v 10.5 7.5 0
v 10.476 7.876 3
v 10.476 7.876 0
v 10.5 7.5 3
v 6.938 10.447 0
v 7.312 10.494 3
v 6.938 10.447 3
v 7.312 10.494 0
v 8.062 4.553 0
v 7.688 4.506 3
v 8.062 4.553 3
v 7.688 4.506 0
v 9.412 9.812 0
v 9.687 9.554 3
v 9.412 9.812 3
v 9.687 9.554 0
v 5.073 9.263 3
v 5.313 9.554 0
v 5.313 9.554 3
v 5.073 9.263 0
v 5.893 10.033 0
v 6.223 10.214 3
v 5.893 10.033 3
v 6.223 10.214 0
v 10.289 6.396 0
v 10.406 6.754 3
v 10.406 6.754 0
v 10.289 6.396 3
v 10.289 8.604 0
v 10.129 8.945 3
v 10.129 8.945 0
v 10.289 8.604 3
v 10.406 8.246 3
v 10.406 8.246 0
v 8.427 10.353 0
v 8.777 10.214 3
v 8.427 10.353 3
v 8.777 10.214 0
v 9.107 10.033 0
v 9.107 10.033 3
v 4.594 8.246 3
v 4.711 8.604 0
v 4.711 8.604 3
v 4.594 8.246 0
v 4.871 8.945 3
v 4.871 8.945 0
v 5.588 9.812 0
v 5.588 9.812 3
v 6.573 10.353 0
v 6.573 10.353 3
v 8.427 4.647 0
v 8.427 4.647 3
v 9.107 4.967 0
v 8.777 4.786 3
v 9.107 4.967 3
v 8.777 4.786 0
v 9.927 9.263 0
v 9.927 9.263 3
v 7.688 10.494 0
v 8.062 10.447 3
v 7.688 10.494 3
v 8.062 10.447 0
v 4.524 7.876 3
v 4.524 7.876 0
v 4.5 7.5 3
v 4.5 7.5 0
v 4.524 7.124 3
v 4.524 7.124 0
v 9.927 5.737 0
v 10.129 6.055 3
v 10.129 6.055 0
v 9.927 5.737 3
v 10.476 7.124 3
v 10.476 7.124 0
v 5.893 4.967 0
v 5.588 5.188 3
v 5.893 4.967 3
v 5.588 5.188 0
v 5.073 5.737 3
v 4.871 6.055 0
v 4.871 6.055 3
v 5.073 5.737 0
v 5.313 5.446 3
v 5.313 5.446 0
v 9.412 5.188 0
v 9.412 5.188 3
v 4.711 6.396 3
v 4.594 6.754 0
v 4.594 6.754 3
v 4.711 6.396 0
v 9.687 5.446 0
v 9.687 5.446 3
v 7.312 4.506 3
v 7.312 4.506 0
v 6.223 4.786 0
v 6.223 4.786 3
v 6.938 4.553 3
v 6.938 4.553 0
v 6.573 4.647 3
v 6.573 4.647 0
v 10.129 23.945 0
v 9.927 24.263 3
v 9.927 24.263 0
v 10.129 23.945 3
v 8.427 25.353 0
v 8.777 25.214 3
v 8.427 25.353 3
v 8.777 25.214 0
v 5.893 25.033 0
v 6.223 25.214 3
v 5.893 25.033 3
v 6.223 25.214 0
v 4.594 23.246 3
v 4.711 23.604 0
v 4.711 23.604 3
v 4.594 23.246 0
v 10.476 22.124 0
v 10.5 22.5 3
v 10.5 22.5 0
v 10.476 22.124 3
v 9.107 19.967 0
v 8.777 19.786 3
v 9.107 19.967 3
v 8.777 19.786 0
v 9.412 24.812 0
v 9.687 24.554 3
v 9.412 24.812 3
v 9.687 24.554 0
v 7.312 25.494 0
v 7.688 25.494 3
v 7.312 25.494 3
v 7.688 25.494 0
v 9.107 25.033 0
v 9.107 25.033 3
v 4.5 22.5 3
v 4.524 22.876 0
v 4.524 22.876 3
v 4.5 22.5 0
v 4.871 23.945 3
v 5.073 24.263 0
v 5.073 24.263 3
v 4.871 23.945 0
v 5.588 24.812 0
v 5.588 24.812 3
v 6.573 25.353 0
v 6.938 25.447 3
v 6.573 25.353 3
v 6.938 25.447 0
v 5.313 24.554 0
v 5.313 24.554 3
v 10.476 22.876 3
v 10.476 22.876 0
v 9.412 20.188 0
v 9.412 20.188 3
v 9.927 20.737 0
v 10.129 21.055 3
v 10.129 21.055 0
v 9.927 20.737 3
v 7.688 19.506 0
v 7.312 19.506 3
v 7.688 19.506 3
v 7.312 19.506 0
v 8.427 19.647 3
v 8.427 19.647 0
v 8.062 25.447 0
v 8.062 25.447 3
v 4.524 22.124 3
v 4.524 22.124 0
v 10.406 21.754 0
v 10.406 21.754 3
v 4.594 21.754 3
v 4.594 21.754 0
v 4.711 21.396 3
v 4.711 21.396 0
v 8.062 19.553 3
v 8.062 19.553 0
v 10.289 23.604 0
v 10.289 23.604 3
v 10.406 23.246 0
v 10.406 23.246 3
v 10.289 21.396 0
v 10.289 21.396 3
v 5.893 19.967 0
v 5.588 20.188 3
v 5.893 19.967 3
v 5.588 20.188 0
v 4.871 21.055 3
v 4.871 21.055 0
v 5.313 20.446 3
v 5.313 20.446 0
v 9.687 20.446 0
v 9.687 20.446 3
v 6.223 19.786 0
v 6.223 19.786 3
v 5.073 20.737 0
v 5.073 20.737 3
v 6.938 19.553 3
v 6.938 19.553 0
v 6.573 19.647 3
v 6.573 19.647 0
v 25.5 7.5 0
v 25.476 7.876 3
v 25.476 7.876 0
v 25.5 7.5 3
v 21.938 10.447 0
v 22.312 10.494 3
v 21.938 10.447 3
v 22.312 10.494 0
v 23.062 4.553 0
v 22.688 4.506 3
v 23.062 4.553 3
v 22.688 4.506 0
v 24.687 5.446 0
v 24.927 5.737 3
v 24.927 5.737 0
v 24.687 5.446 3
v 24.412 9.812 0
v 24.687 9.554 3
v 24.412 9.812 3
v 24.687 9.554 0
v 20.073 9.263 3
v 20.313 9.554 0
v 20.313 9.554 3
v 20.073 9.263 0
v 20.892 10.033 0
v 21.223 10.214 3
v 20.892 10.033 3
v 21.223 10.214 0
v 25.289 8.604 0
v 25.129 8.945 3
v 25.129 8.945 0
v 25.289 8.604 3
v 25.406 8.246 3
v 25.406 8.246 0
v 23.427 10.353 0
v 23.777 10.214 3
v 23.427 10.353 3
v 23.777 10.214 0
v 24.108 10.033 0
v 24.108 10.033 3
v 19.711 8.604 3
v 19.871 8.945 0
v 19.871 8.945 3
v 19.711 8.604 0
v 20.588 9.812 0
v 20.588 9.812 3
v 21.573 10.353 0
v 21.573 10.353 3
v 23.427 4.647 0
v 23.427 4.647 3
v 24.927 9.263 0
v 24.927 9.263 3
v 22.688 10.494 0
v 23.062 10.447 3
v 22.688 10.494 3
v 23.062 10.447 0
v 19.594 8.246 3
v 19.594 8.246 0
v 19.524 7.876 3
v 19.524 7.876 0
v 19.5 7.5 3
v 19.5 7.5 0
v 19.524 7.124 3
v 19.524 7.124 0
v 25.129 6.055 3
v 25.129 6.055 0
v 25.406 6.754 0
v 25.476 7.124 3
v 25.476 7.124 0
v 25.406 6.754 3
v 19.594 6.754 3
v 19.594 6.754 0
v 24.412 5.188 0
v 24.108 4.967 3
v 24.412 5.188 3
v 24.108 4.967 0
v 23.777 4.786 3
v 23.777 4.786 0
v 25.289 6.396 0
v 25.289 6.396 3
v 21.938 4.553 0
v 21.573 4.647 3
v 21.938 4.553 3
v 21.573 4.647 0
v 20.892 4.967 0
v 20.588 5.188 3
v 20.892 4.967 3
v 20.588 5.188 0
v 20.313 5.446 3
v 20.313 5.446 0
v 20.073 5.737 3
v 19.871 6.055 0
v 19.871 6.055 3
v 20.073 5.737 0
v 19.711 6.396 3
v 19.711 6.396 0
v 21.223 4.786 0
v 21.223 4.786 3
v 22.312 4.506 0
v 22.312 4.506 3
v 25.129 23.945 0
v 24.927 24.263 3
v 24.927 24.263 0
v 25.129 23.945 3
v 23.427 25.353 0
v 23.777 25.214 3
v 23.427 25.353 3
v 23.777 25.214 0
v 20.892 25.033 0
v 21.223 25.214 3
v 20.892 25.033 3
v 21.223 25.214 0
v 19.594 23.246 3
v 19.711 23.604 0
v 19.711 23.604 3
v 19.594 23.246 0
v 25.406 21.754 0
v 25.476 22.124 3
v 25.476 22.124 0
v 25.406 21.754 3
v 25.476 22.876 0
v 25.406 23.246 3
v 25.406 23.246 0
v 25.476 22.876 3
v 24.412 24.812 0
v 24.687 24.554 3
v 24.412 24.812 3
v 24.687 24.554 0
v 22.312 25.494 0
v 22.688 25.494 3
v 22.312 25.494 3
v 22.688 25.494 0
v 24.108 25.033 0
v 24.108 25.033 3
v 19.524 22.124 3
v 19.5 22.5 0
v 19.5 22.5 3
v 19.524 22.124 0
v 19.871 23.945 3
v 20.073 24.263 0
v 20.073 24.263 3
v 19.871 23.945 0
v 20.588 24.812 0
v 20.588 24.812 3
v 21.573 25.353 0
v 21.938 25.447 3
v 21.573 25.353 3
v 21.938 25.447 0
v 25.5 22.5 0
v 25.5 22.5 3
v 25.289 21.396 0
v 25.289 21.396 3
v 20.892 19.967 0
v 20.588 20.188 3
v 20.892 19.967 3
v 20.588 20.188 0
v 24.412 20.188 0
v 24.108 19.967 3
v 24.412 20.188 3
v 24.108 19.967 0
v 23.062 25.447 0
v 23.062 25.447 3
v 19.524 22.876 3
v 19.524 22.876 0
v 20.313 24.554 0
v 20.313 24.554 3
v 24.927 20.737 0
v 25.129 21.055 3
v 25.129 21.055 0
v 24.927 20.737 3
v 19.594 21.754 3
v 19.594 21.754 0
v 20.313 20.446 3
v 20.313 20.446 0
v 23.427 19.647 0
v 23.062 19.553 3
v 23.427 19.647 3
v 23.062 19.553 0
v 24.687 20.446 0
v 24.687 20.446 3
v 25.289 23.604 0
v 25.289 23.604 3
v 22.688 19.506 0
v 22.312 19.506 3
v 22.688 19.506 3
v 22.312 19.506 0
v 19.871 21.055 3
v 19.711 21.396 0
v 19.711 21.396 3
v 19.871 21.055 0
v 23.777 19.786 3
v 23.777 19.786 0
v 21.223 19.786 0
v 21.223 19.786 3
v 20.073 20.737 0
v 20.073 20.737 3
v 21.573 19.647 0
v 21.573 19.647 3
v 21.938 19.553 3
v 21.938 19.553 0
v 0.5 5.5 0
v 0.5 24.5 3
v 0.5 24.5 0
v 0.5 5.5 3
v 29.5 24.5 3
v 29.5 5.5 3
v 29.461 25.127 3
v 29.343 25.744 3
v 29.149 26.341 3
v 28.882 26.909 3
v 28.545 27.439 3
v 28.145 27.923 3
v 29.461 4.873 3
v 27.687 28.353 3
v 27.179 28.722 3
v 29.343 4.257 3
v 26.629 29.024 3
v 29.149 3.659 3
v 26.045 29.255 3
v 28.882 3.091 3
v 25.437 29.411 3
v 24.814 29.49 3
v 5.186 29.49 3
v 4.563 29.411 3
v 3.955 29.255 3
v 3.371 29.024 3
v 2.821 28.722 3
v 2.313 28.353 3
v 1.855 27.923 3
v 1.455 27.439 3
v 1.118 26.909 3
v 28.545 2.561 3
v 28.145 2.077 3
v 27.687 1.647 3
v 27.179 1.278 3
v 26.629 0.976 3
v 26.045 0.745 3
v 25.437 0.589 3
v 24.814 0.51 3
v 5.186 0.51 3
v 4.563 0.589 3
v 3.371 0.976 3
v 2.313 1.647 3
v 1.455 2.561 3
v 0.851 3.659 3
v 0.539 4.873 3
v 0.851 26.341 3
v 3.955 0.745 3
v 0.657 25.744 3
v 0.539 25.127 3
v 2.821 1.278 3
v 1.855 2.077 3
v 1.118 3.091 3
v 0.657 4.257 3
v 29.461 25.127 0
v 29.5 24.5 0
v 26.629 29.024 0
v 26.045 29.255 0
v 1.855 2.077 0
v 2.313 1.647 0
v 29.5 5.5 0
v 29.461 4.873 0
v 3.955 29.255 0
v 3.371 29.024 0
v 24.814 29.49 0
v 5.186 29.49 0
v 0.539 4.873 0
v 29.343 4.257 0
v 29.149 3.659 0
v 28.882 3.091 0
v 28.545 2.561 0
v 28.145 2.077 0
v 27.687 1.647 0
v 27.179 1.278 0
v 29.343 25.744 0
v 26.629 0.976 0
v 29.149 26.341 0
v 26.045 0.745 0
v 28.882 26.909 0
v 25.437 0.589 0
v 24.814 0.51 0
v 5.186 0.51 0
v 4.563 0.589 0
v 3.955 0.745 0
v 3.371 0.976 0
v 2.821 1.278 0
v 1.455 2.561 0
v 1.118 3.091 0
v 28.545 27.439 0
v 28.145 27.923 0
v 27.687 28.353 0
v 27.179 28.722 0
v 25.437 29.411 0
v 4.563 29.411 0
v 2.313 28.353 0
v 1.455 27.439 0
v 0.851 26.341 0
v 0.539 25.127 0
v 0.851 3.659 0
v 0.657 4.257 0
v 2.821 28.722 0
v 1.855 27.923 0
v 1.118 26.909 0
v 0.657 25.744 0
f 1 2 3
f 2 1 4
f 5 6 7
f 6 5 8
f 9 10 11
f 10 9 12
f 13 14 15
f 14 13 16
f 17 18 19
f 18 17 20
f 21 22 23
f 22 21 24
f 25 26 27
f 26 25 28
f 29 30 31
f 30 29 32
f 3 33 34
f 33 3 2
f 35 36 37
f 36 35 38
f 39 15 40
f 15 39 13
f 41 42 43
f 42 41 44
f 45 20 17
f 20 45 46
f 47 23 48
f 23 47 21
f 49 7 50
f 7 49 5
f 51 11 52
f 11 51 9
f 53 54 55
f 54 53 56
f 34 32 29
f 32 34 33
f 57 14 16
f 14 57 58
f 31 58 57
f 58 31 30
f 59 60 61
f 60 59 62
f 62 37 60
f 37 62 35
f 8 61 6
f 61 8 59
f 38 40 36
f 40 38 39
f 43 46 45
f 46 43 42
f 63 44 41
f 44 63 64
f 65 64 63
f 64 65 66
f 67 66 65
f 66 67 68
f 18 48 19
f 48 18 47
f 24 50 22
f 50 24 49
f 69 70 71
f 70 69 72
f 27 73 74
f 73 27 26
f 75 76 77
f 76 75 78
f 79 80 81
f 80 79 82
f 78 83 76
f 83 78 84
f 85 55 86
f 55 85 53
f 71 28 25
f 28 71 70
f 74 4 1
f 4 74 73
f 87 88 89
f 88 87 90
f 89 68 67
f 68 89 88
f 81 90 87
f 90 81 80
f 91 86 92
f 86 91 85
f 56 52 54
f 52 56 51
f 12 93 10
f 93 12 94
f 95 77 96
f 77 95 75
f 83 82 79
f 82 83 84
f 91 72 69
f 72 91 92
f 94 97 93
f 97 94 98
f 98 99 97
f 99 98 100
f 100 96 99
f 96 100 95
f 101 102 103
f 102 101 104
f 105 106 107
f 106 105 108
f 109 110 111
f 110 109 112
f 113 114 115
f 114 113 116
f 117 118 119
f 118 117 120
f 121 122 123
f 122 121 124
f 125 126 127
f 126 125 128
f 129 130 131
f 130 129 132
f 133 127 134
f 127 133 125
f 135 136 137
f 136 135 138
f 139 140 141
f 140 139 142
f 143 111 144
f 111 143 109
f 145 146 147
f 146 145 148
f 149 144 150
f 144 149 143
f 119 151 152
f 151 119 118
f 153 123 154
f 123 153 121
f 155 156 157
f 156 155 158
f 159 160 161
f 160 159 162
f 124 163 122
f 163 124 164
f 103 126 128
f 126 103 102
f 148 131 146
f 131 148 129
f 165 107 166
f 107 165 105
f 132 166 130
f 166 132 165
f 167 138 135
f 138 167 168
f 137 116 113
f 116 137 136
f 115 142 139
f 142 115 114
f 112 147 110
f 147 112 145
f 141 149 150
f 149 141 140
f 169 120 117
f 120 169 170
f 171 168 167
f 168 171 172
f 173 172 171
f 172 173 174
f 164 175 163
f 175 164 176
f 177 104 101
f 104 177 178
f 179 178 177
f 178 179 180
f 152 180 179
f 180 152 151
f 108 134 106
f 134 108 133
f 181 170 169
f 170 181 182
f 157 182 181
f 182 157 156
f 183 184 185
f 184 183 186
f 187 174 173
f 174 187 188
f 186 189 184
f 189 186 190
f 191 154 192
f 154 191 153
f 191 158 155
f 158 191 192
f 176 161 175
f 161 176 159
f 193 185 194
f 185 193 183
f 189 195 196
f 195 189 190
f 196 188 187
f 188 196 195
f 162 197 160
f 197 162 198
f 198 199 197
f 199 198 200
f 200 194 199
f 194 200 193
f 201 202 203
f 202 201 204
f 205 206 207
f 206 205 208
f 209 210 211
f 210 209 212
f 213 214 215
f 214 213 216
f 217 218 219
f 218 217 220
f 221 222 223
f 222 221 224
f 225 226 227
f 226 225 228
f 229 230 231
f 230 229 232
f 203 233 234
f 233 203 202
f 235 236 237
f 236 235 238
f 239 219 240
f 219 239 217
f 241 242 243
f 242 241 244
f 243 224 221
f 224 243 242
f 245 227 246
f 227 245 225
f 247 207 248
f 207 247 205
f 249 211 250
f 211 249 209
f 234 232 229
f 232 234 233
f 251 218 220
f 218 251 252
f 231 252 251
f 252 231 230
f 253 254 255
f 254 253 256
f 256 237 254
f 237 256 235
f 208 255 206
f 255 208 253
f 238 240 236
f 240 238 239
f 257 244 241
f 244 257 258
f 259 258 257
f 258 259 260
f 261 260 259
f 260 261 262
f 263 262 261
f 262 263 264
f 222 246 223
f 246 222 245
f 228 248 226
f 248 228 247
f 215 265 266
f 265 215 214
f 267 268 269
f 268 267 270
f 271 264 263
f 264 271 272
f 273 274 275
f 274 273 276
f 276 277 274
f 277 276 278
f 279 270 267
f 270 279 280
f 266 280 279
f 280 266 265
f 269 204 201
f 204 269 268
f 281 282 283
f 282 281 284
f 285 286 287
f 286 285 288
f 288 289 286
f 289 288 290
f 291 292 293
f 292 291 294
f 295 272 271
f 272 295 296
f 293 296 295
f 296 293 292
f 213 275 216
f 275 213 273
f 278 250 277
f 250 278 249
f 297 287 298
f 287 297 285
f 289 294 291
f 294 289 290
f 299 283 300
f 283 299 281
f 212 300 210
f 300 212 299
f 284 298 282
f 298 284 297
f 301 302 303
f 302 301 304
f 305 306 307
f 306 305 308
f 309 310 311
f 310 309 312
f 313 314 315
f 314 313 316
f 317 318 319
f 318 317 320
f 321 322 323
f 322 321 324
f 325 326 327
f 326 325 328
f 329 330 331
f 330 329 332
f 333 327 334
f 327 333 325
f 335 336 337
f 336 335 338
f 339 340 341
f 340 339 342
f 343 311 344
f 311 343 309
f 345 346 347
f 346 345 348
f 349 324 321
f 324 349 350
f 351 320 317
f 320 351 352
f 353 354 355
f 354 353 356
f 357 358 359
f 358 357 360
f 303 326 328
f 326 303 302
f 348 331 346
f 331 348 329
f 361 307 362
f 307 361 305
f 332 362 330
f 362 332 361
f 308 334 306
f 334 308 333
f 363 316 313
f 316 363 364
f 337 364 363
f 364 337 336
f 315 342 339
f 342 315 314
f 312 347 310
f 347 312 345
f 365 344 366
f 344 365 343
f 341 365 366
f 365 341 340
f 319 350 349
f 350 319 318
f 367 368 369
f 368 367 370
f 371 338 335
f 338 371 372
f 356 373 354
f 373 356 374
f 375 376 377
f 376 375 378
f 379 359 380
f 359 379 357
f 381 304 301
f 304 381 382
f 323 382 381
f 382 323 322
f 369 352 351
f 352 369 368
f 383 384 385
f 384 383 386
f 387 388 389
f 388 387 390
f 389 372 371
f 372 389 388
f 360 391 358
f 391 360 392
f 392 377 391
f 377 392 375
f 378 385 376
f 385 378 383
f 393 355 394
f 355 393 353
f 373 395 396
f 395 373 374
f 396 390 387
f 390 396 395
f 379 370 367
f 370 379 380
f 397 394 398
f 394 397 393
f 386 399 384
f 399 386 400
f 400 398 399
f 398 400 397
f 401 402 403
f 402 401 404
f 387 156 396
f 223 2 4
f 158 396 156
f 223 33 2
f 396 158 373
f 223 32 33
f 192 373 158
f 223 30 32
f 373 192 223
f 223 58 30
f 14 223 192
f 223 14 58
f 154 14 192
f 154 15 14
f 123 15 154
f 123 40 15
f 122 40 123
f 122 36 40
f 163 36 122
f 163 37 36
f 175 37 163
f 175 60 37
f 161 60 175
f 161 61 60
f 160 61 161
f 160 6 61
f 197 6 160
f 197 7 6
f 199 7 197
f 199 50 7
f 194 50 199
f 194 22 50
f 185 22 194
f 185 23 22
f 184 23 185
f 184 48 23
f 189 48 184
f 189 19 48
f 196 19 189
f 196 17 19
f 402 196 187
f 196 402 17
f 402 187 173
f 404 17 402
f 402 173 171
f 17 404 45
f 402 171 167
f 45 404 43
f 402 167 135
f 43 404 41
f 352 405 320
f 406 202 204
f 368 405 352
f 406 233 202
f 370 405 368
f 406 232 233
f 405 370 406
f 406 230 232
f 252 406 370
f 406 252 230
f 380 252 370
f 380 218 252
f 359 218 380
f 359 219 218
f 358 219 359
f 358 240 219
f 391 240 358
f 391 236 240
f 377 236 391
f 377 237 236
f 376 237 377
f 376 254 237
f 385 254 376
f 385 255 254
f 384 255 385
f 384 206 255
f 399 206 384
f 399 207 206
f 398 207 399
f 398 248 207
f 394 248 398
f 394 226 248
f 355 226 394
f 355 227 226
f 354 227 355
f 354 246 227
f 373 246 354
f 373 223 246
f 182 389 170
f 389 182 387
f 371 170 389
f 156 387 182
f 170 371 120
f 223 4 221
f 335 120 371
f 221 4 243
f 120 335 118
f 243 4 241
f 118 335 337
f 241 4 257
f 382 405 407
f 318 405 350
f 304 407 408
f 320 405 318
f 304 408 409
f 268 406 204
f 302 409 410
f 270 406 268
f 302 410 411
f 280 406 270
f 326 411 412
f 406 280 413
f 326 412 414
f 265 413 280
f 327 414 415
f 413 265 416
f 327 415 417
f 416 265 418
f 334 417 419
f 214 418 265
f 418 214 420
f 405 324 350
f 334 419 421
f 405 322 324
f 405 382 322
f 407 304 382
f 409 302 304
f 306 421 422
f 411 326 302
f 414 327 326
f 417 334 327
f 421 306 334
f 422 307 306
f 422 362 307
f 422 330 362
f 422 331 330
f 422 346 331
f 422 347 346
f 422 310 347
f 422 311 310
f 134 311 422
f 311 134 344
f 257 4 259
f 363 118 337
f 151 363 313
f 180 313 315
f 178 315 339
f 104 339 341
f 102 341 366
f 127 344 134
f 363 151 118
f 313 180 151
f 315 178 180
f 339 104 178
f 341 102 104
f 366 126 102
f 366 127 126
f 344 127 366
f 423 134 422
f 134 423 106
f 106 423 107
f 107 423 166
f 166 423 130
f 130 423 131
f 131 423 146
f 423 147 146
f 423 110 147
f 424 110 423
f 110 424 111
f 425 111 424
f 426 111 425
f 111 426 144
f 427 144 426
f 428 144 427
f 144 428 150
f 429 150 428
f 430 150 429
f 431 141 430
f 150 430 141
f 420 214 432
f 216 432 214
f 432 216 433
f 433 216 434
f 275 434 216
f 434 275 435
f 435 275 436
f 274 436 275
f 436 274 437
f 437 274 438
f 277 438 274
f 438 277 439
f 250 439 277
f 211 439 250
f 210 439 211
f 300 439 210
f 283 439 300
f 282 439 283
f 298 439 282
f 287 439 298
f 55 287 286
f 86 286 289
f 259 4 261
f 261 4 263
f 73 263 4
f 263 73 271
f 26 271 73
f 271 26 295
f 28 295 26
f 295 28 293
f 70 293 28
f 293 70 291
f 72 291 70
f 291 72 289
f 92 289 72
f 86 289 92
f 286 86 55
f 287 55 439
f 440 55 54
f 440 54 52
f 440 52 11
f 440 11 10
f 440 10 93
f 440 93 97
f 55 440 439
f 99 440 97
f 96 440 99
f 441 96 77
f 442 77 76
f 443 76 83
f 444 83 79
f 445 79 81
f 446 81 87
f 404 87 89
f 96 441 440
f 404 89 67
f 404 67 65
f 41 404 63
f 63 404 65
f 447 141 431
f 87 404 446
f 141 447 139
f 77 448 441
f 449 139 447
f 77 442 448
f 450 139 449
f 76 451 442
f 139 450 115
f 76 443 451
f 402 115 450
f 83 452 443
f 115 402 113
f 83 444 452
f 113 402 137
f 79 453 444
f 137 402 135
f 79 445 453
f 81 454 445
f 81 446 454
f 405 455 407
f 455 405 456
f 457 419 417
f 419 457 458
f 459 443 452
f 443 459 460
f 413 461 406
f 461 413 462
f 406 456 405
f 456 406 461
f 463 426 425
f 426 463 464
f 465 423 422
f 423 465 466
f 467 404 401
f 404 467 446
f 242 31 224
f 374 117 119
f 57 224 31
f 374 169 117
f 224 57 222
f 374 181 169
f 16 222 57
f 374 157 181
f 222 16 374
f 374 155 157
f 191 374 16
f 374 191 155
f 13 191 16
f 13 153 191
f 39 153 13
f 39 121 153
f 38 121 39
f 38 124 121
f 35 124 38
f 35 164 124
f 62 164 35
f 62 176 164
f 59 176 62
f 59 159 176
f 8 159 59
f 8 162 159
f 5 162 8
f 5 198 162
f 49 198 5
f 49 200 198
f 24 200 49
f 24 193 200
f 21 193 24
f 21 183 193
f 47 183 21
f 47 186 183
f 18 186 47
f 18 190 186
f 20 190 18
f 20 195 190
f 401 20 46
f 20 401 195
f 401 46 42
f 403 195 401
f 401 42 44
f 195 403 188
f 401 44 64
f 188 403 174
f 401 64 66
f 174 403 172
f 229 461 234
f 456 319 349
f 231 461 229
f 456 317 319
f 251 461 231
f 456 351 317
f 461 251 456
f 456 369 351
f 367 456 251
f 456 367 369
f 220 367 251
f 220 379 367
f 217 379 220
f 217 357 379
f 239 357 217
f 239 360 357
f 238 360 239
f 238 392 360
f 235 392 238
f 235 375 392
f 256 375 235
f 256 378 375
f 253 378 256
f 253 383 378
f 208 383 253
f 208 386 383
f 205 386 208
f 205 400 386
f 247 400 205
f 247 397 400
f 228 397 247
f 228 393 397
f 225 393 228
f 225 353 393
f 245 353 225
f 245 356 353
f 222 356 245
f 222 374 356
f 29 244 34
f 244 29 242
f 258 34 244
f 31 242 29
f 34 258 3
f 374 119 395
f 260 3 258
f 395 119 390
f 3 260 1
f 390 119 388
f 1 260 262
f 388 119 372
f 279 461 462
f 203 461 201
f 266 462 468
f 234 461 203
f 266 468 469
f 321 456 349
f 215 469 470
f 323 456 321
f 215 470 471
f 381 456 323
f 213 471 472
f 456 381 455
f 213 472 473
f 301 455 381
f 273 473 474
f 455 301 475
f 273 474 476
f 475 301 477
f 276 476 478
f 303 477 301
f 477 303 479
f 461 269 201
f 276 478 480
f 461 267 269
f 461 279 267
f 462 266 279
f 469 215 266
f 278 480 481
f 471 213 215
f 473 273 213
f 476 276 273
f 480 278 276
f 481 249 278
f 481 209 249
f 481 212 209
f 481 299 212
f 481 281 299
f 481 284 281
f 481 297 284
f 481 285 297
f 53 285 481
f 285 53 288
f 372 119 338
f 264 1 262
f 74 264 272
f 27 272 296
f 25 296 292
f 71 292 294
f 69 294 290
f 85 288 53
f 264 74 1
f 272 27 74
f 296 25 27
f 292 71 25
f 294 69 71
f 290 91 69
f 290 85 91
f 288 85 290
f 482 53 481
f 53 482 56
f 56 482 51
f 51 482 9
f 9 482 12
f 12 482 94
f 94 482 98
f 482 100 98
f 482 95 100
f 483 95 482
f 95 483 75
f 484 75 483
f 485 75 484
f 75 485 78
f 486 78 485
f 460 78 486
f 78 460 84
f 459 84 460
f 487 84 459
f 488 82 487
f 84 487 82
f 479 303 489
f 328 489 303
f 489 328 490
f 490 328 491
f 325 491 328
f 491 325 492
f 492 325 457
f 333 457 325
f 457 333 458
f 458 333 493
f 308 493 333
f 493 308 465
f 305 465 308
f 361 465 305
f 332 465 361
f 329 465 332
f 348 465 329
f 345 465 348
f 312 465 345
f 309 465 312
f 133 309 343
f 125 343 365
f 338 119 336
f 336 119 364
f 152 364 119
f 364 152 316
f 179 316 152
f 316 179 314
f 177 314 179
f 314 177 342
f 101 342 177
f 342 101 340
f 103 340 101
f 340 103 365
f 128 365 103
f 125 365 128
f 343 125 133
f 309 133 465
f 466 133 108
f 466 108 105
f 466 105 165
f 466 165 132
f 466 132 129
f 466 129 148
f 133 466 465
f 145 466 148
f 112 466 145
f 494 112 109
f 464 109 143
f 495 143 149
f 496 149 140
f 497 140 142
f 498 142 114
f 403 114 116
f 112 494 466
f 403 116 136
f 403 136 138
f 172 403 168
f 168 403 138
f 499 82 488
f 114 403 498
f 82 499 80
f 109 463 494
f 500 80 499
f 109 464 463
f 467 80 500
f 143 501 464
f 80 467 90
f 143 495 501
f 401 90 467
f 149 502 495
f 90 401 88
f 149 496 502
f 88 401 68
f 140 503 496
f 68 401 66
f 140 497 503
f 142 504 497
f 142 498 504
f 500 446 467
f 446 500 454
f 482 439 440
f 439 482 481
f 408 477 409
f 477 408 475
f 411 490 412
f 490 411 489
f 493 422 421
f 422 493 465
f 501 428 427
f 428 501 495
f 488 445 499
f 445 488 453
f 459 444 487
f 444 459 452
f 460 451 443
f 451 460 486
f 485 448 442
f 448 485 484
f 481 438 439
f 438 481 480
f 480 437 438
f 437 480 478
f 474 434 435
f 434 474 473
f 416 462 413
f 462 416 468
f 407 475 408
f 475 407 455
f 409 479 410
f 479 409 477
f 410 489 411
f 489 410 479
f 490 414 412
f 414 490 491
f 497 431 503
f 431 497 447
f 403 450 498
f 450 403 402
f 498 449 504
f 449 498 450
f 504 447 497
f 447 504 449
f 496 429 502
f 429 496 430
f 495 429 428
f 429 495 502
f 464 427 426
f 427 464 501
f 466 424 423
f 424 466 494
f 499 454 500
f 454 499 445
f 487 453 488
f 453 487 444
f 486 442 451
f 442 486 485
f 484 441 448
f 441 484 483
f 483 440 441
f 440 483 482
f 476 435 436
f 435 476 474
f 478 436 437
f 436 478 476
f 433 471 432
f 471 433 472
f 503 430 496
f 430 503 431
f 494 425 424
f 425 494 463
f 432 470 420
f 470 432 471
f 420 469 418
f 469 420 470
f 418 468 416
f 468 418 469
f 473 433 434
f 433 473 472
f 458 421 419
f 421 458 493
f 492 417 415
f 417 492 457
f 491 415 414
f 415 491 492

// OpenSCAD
// Generated by SolidPython 1.1.3 on 2023-01-09 14:52:36
$fn = 50;


difference() {
	union() {
		translate(v = [15.0000000000, 15.0000000000, 0]) {
			rotate(a = [0, 0, 0]) {
				hull() {
					translate(v = [-9.5000000000, 9.5000000000, 0]) {
						rotate(a = [0, 0, 0]) {
							translate(v = [0, 0, 0]) {
								rotate(a = [0, 0, 0]) {
									cylinder(h = 3, r = 5);
								}
							}
						}
					}
					translate(v = [9.5000000000, 9.5000000000, 0]) {
						rotate(a = [0, 0, 0]) {
							translate(v = [0, 0, 0]) {
								rotate(a = [0, 0, 0]) {
									cylinder(h = 3, r = 5);
								}
							}
						}
					}
					translate(v = [-9.5000000000, -9.5000000000, 0]) {
						rotate(a = [0, 0, 0]) {
							translate(v = [0, 0, 0]) {
								rotate(a = [0, 0, 0]) {
									cylinder(h = 3, r = 5);
								}
							}
						}
					}
					translate(v = [9.5000000000, -9.5000000000, 0]) {
						rotate(a = [0, 0, 0]) {
							translate(v = [0, 0, 0]) {
								rotate(a = [0, 0, 0]) {
									cylinder(h = 3, r = 5);
								}
							}
						}
					}
				}
			}
		}
	}
	union() {
		translate(v = [7.5000000000, 7.5000000000, 0]) {
			rotate(a = [0, 0, 0]) {
				translate(v = [0, 0, -50]) {
					rotate(a = [0, 0, 0]) {
						cylinder(h = 100, r = 3.0000000000);
					}
				}
			}
		}
		translate(v = [7.5000000000, 22.5000000000, 0]) {
			rotate(a = [0, 0, 0]) {
				translate(v = [0, 0, -50]) {
					rotate(a = [0, 0, 0]) {
						cylinder(h = 100, r = 3.0000000000);
					}
				}
			}
		}
		translate(v = [22.5000000000, 7.5000000000, 0]) {
			rotate(a = [0, 0, 0]) {
				translate(v = [0, 0, -50]) {
					rotate(a = [0, 0, 0]) {
						cylinder(h = 100, r = 3.0000000000);
					}
				}
			}
		}
		translate(v = [22.5000000000, 22.5000000000, 0]) {
			rotate(a = [0, 0, 0]) {
				translate(v = [0, 0, -50]) {
					rotate(a = [0, 0, 0]) {
						cylinder(h = 100, r = 3.0000000000);
					}
				}
			}
		}
	}
}
/***********************************************
*********      SolidPython code:      **********
************************************************
 
from solid import *
import os
import subprocess

import oomB

import opsc_library_gen

mode = "laser"
#mode = "3d_print"

defined_objects = {}

radius_dict = {}
countersunk_dict = {}


def set_mode(m):
    global mode
    mode = m
    radius_dict['M6'] = 6.5/2
    radius_dict['M3'] = 3.3/2
    if mode == "laser":
        radius_dict['M6'] = 6/2
        radius_dict['M3'] = 3/2

    countersunk_dict['M3'] = {}
    countersunk_dict['M3']['little_rad'] = radius_dict['M3']
    countersunk_dict['M3']['big_rad'] = (5.5+0.6)/2
    if mode == "laser":
        countersunk_dict['M3']['big_rad'] = (4.75+0.6)/2
        countersunk_dict['M3']['little_rad'] = (4.75+0.6)/2

    countersunk_dict['M3']['height'] = 1.7


def opsc_make_object(filename, objects, save_type="none",resolution=50, layers = 1, tilediff = 200, mode="laser"):
    set_mode(mode)
    save_type = save_type.lower()
    os.makedirs(os.path.dirname(filename), exist_ok=True)
    final_object = opsc_get_object(objects)
    # Save the final object to the specified filename    
    scad_render_to_file(final_object, filename, file_header='$fn = %s;' % resolution, include_orig_code=True)
    if mode == "laser":
        filename_laser = filename.replace(".scad","-flat.scad")
        scad_render_to_file(getLaser(final_object, layers=layers, tilediff=tilediff), filename_laser, file_header='$fn = %s;' % resolution, include_orig_code=True)
        if save_type == "all":
            saveToAll(filename_laser)
        elif save_type == "dxf":
            saveToDxf(filename_laser)
    if save_type == "all":
        saveToAll(filename)
    elif save_type == "dxf":
        saveToDxf(filename)


def opsc_get_object(objects):
    # Create the solidpython objects
    positive_objects = [get_opsc_item(obj) for obj in objects if obj['type'] == 'positive']
    negative_objects = [get_opsc_item(obj) for obj in objects if obj['type'] == 'negative']
    # Union the positive objects
    positive_object = union()(*positive_objects)
    # Union the negative objects
    negative_object = union()(*negative_objects)
    # Create the final object by subtracting the negative objects from the positive objects
    return difference()(positive_object, negative_object)

def get_opsc_item(params):
    # A dictionary to map radius string values to numerical values
    #radius_dict = {'small': 5, 'medium': 10, 'large': 15}
    # An array of function names for basic shapes
    basic_shapes = ['cube', 'sphere', 'cylinder']
    
    # An array of function names for other shapes
    other_shapes = ['hole', 'slot', 'rounded_rectangle', 'countersunk']
    


    # Convert radius to r if present, and remove radius from the params dictionary
    if 'radius' in params:
        if isinstance(params['radius'], str):
            # Use the radius_dict to map the radius string value to a numerical value
            params['r'] = radius_dict[params['radius']]
        else:
            params['r'] = params['radius']
        del params['radius']
    

    # Check if the object type is a basic shape
    if params['shape'] in basic_shapes:
        # Remove shape and unexpected dictionary values
        allowed_keys = {'size', 'r', 'r1', 'r2', 'd', 'h', 'rw', 'rh', 'dw', 'dh'}
        shape_params = {k: v for k, v in params.items() if k in allowed_keys}

        # Call the corresponding function for the shape parameter, using ** notation to pass the shape_params dictionary as keyword arguments
        return get_opsc_transform(params,globals()[params['shape']](**shape_params))
    
    # If the object type is not a basic shape, check if it's a defined object or one of the other shapes
    elif params['shape'] in other_shapes:
        # Call the corresponding function for the shape parameter, passing the params dictionary as an argument
        p2 = copy.deepcopy(params)
        p2["pos"] = [0,0,0]
        return get_opsc_transform(params,globals()[params['shape']](p2))
    
    # If the object is not a basic shape or a defined object, try to import it from a .scad file
    else:
        obj = defined_objects[params['shape']]
        return get_opsc_transform(params,obj)

def get_opsc_transform(params, solid_obj):
    # Rotate the object based on the 'rot' field in the params dictionary, or the 'rotX', 'rotY', and 'rotZ' fields if 'rot' is not present
    rot = params.get('rot', [])
    if rot:
        rotX, rotY, rotZ = rot
    else:
        rotX = params.get('rotX', 0)
        rotY = params.get('rotY', 0)
        rotZ = params.get('rotZ', 0)
    solid_obj = rotate([rotX, rotY, rotZ])(solid_obj)

    # Translate the object based on the 'pos' field in the params dictionary, or the 'x', 'y', and 'z' fields if 'pos' is not present
    pos = params.get('pos', [])
    if pos:
        x, y, z = pos
    else:
        x = params.get('x', 0)
        y = params.get('y', 0)
        z = params.get('z', 0)
    solid_obj = translate([x, y, z])(solid_obj)
    return solid_obj


import random

def opsc_easy_array(type, shape, repeats, pos_start, shift_arr, **kwargs):
    for i in range(0,3):
        repeats.append(1)
        pos_start.append(0)
        shift_arr.append(0)
    return_objects = []

    for x in range(0,repeats[0]):
        for y in range(0,repeats[1]):
            for z in range(0,repeats[2]):
                return_objects.append(opsc_easy(type, shape, pos=[pos_start[0]+x*shift_arr[0],pos_start[1]+y*shift_arr[1],pos_start[2]+z*shift_arr[2]], **kwargs))
    return return_objects                



def opsc_easy(type, shape, **kwargs):
    obj = {
        'type': type,
        'shape': shape
    }
    for param in ['size', 'r', 'r1', 'r2', 'd', 'h', 'rw', 'rh', 'dw', 'dh', 'pos', 'x', 'y', 'z', 'rot', 'rotX', 'rotY', 'rotZ', "w"]:
        if param in kwargs:
            obj[param] = kwargs[param]
    return obj

def hole(params):
    p2 = copy.deepcopy(params)  
    # Check if the radius is a string and replace it with the corresponding value from the dictionary
    if isinstance(p2['r'], str):
        p2['r'] = radius_dict[p2['r']]
    
    # Set the height to 100 if not specified
    if 'h' not in p2:
        p2['h'] = 100
        p2["pos"] = [0,0,-50]
    p2["center"] = True
    # Create the cylinder object
    p2["shape"] = "cylinder"
    p2["type"] = "positive"

    return get_opsc_item(p2)

import copy

def countersunk(params):
    p2 = copy.deepcopy(params)
    counter_rad = p2['r']
    p2['r'] = radius_dict[p2['r']]
    hp = copy.deepcopy(p2)
    hp["type"] = "positive"
    hp["shape"] = "hole"
    del hp["rot"]
    hol = get_opsc_item(hp)
    
    cp = copy.deepcopy(p2)
    cp["h"] = countersunk_dict[counter_rad]["height"]
    cp["r2"] = countersunk_dict[counter_rad]["little_rad"]
    cp["r1"] = countersunk_dict[counter_rad]["big_rad"]
    del cp["r"]
    del cp["rot"]
    cp["type"] = "positive"
    cp["shape"] = "cylinder"
    cp["pos"] = [0,0,0]

    top = get_opsc_item(cp)
    return union()(hol,top)



def slot(params):  
    p2 = copy.deepcopy(params) 
    if isinstance(p2['r'], str):
        p2['r'] = radius_dict[p2['r']]
    p2["type"] = "positive"
    p2["shape"] = "hole"
    del p2["rot"]
    p2["pos"] = [0,0,0]
    left = copy.deepcopy(p2)
    right = copy.deepcopy(p2)
    left["pos"][0] = p2["w"] / 2 - p2["r"] 
    
    right["pos"][0] = -p2["w"] / 2 + p2["r"] 
    pass
    leftObj = get_opsc_item(left)
    rightObj = get_opsc_item(right)
    return hull()(leftObj, rightObj)

def rounded_rectangle(params):   
    p2 = copy.deepcopy(params) 
    p2["h"] = p2["size"][2]
    p2["pos"] = p2.get("pos", [0, 0, 0]) 
    p2["type"] = "positive"
    p2["shape"] = "hole"
    p2["pos"] = [0,0,0]
    
    if 'rot' in p2:
        del p2["rot"]   
    if 'r' not in p2:
        p2["r"] = 5 
    tl = copy.deepcopy(p2)
    tr = copy.deepcopy(p2)
    bl = copy.deepcopy(p2)
    br = copy.deepcopy(p2)
    tl["pos"][0] = -(p2["size"][0] - p2["r"]*2)/2
    tl["pos"][1] = (p2["size"][1] - p2["r"]*2)/2
    tr["pos"][0] = (p2["size"][0] - p2["r"]*2)/2
    tr["pos"][1] = (p2["size"][1] - p2["r"]*2)/2
    bl["pos"][0] = -(p2["size"][0] - p2["r"]*2)/2
    bl["pos"][1] = -(p2["size"][1] - p2["r"]*2)/2
    br["pos"][0] = (p2["size"][0] - p2["r"]*2)/2
    br["pos"][1] = -(p2["size"][1] - p2["r"]*2)/2
    del tl["size"]
    del tr["size"]
    del bl["size"]
    del br["size"]
    tlo = get_opsc_item(tl)
    tro = get_opsc_item(tr)
    blo = get_opsc_item(bl)
    bro = get_opsc_item(br)    
    return hull()(tlo, tro, blo, bro)



def import_scad_object(filename):
    # Import the .scad file and convert it to a solidpython object
    #filename = "parts"
    obj = import_scad(filename)
    return obj.main()
    


import os
import solid as solidpython

# A dictionary to store the defined objects


def load_scad_objects():
    opsc_library_gen.gen_library(defined_objects)

import random

def test(num_objects):
    objects = []
    for i in range(num_objects):
        # Choose a random shape
        #shape = random.choice(['cube', 'sphere', 'cylinder', 'hole', 'slot', "rounded_rectangle"])
        shape = random.choice(["rounded_rectangle"])

        # Choose a random type
        type = random.choice(['positive', 'negative'])
        
        # Create an empty object dictionary
        obj = {'shape': shape, 'type': type}
        
        # Set shape-specific parameters
        if obj['shape'] in ['cube']:
            obj['size'] =  [random.uniform(5, 15), random.uniform(5, 15), random.uniform(5, 15)]
        if obj['shape'] in ['rounded_rectangle']:
            obj['size'] =  [random.uniform(5, 15), random.uniform(5, 15), random.uniform(5, 15)]
            obj['r'] = random.uniform(0.5, 5)
        elif obj['shape'] == 'sphere':
            obj['r'] = random.uniform(5, 15)
        elif obj['shape'] in ['cylinder', 'hole']:
            obj['r'] = random.uniform(0.5, 5)
            obj['h'] = random.uniform(5, 15)
        elif obj['shape'] == 'slot':
            obj['r'] = random.uniform(0.5, 5)
            obj['h'] = random.uniform(5, 15)
            obj['w'] = random.uniform(5, 15)
        
        # Set a random position and rotation
        obj['pos'] = [random.uniform(-20, 20), random.uniform(-20, 20), random.uniform(-20, 20)]
        obj['rot'] = [random.uniform(-180, 180), random.uniform(-180, 180), random.uniform(-180, 180)]
        
        # Add the object to the list
        objects.append(obj)
    return objects

####### old file saving
def saveToAll(fileIn):
    saveToDxf(fileIn)
    saveToPng(fileIn)
    saveToStl(fileIn)
    saveToSvg(fileIn)

def saveToDxf(fileIn, fileOut="", copy_to_laser=True):
    if fileOut == "":
        fileOut = fileIn.replace(".scad",".dxf")
    saveToFile(fileIn, fileOut)


    
def saveToPng(fileIn, fileOut="",extra="--render"):
    if fileOut == "":
        fileOut = fileIn.replace(".scad",".png")
    saveToFile(fileIn, fileOut)

def saveToStl(fileIn, fileOut=""):
    if fileOut == "":
        fileOut = fileIn.replace(".scad",".stl")
    saveToFile(fileIn, fileOut)
    
def saveToSvg(fileIn, fileOut=""):
    if fileOut == "":
        fileOut = fileIn.replace(".scad",".svg")
    saveToFile(fileIn, fileOut)

def saveToFile(fileIn, fileOut,extra=""):
    #extra = extra + " --colorscheme Tomorrow"

    launchStr = 'openscad -o "' + fileOut + '"' + extra + ' "' + fileIn + '"'
    if ".png" in fileOut:
        launchStr = launchStr + " --render"
    print("            saveToFile launch string: " + launchStr)
    subprocess.run(launchStr)
    x=0

def getLaser(final_object,start=1.5,layers=1,thickness=3,tilediff=200):
        rv= []

        for x in range(layers):
            rv.append(translate([0,x*tilediff,0])(
                    projection()(
                        intersection()(translate([-500,-500,start+x*thickness])(cube(size=[1000,1000,0.1])),
                            final_object
                        )
                    )
            )
            )
            
        return union()(rv)

set_mode("laser")
load_scad_objects() 
 
************************************************/
